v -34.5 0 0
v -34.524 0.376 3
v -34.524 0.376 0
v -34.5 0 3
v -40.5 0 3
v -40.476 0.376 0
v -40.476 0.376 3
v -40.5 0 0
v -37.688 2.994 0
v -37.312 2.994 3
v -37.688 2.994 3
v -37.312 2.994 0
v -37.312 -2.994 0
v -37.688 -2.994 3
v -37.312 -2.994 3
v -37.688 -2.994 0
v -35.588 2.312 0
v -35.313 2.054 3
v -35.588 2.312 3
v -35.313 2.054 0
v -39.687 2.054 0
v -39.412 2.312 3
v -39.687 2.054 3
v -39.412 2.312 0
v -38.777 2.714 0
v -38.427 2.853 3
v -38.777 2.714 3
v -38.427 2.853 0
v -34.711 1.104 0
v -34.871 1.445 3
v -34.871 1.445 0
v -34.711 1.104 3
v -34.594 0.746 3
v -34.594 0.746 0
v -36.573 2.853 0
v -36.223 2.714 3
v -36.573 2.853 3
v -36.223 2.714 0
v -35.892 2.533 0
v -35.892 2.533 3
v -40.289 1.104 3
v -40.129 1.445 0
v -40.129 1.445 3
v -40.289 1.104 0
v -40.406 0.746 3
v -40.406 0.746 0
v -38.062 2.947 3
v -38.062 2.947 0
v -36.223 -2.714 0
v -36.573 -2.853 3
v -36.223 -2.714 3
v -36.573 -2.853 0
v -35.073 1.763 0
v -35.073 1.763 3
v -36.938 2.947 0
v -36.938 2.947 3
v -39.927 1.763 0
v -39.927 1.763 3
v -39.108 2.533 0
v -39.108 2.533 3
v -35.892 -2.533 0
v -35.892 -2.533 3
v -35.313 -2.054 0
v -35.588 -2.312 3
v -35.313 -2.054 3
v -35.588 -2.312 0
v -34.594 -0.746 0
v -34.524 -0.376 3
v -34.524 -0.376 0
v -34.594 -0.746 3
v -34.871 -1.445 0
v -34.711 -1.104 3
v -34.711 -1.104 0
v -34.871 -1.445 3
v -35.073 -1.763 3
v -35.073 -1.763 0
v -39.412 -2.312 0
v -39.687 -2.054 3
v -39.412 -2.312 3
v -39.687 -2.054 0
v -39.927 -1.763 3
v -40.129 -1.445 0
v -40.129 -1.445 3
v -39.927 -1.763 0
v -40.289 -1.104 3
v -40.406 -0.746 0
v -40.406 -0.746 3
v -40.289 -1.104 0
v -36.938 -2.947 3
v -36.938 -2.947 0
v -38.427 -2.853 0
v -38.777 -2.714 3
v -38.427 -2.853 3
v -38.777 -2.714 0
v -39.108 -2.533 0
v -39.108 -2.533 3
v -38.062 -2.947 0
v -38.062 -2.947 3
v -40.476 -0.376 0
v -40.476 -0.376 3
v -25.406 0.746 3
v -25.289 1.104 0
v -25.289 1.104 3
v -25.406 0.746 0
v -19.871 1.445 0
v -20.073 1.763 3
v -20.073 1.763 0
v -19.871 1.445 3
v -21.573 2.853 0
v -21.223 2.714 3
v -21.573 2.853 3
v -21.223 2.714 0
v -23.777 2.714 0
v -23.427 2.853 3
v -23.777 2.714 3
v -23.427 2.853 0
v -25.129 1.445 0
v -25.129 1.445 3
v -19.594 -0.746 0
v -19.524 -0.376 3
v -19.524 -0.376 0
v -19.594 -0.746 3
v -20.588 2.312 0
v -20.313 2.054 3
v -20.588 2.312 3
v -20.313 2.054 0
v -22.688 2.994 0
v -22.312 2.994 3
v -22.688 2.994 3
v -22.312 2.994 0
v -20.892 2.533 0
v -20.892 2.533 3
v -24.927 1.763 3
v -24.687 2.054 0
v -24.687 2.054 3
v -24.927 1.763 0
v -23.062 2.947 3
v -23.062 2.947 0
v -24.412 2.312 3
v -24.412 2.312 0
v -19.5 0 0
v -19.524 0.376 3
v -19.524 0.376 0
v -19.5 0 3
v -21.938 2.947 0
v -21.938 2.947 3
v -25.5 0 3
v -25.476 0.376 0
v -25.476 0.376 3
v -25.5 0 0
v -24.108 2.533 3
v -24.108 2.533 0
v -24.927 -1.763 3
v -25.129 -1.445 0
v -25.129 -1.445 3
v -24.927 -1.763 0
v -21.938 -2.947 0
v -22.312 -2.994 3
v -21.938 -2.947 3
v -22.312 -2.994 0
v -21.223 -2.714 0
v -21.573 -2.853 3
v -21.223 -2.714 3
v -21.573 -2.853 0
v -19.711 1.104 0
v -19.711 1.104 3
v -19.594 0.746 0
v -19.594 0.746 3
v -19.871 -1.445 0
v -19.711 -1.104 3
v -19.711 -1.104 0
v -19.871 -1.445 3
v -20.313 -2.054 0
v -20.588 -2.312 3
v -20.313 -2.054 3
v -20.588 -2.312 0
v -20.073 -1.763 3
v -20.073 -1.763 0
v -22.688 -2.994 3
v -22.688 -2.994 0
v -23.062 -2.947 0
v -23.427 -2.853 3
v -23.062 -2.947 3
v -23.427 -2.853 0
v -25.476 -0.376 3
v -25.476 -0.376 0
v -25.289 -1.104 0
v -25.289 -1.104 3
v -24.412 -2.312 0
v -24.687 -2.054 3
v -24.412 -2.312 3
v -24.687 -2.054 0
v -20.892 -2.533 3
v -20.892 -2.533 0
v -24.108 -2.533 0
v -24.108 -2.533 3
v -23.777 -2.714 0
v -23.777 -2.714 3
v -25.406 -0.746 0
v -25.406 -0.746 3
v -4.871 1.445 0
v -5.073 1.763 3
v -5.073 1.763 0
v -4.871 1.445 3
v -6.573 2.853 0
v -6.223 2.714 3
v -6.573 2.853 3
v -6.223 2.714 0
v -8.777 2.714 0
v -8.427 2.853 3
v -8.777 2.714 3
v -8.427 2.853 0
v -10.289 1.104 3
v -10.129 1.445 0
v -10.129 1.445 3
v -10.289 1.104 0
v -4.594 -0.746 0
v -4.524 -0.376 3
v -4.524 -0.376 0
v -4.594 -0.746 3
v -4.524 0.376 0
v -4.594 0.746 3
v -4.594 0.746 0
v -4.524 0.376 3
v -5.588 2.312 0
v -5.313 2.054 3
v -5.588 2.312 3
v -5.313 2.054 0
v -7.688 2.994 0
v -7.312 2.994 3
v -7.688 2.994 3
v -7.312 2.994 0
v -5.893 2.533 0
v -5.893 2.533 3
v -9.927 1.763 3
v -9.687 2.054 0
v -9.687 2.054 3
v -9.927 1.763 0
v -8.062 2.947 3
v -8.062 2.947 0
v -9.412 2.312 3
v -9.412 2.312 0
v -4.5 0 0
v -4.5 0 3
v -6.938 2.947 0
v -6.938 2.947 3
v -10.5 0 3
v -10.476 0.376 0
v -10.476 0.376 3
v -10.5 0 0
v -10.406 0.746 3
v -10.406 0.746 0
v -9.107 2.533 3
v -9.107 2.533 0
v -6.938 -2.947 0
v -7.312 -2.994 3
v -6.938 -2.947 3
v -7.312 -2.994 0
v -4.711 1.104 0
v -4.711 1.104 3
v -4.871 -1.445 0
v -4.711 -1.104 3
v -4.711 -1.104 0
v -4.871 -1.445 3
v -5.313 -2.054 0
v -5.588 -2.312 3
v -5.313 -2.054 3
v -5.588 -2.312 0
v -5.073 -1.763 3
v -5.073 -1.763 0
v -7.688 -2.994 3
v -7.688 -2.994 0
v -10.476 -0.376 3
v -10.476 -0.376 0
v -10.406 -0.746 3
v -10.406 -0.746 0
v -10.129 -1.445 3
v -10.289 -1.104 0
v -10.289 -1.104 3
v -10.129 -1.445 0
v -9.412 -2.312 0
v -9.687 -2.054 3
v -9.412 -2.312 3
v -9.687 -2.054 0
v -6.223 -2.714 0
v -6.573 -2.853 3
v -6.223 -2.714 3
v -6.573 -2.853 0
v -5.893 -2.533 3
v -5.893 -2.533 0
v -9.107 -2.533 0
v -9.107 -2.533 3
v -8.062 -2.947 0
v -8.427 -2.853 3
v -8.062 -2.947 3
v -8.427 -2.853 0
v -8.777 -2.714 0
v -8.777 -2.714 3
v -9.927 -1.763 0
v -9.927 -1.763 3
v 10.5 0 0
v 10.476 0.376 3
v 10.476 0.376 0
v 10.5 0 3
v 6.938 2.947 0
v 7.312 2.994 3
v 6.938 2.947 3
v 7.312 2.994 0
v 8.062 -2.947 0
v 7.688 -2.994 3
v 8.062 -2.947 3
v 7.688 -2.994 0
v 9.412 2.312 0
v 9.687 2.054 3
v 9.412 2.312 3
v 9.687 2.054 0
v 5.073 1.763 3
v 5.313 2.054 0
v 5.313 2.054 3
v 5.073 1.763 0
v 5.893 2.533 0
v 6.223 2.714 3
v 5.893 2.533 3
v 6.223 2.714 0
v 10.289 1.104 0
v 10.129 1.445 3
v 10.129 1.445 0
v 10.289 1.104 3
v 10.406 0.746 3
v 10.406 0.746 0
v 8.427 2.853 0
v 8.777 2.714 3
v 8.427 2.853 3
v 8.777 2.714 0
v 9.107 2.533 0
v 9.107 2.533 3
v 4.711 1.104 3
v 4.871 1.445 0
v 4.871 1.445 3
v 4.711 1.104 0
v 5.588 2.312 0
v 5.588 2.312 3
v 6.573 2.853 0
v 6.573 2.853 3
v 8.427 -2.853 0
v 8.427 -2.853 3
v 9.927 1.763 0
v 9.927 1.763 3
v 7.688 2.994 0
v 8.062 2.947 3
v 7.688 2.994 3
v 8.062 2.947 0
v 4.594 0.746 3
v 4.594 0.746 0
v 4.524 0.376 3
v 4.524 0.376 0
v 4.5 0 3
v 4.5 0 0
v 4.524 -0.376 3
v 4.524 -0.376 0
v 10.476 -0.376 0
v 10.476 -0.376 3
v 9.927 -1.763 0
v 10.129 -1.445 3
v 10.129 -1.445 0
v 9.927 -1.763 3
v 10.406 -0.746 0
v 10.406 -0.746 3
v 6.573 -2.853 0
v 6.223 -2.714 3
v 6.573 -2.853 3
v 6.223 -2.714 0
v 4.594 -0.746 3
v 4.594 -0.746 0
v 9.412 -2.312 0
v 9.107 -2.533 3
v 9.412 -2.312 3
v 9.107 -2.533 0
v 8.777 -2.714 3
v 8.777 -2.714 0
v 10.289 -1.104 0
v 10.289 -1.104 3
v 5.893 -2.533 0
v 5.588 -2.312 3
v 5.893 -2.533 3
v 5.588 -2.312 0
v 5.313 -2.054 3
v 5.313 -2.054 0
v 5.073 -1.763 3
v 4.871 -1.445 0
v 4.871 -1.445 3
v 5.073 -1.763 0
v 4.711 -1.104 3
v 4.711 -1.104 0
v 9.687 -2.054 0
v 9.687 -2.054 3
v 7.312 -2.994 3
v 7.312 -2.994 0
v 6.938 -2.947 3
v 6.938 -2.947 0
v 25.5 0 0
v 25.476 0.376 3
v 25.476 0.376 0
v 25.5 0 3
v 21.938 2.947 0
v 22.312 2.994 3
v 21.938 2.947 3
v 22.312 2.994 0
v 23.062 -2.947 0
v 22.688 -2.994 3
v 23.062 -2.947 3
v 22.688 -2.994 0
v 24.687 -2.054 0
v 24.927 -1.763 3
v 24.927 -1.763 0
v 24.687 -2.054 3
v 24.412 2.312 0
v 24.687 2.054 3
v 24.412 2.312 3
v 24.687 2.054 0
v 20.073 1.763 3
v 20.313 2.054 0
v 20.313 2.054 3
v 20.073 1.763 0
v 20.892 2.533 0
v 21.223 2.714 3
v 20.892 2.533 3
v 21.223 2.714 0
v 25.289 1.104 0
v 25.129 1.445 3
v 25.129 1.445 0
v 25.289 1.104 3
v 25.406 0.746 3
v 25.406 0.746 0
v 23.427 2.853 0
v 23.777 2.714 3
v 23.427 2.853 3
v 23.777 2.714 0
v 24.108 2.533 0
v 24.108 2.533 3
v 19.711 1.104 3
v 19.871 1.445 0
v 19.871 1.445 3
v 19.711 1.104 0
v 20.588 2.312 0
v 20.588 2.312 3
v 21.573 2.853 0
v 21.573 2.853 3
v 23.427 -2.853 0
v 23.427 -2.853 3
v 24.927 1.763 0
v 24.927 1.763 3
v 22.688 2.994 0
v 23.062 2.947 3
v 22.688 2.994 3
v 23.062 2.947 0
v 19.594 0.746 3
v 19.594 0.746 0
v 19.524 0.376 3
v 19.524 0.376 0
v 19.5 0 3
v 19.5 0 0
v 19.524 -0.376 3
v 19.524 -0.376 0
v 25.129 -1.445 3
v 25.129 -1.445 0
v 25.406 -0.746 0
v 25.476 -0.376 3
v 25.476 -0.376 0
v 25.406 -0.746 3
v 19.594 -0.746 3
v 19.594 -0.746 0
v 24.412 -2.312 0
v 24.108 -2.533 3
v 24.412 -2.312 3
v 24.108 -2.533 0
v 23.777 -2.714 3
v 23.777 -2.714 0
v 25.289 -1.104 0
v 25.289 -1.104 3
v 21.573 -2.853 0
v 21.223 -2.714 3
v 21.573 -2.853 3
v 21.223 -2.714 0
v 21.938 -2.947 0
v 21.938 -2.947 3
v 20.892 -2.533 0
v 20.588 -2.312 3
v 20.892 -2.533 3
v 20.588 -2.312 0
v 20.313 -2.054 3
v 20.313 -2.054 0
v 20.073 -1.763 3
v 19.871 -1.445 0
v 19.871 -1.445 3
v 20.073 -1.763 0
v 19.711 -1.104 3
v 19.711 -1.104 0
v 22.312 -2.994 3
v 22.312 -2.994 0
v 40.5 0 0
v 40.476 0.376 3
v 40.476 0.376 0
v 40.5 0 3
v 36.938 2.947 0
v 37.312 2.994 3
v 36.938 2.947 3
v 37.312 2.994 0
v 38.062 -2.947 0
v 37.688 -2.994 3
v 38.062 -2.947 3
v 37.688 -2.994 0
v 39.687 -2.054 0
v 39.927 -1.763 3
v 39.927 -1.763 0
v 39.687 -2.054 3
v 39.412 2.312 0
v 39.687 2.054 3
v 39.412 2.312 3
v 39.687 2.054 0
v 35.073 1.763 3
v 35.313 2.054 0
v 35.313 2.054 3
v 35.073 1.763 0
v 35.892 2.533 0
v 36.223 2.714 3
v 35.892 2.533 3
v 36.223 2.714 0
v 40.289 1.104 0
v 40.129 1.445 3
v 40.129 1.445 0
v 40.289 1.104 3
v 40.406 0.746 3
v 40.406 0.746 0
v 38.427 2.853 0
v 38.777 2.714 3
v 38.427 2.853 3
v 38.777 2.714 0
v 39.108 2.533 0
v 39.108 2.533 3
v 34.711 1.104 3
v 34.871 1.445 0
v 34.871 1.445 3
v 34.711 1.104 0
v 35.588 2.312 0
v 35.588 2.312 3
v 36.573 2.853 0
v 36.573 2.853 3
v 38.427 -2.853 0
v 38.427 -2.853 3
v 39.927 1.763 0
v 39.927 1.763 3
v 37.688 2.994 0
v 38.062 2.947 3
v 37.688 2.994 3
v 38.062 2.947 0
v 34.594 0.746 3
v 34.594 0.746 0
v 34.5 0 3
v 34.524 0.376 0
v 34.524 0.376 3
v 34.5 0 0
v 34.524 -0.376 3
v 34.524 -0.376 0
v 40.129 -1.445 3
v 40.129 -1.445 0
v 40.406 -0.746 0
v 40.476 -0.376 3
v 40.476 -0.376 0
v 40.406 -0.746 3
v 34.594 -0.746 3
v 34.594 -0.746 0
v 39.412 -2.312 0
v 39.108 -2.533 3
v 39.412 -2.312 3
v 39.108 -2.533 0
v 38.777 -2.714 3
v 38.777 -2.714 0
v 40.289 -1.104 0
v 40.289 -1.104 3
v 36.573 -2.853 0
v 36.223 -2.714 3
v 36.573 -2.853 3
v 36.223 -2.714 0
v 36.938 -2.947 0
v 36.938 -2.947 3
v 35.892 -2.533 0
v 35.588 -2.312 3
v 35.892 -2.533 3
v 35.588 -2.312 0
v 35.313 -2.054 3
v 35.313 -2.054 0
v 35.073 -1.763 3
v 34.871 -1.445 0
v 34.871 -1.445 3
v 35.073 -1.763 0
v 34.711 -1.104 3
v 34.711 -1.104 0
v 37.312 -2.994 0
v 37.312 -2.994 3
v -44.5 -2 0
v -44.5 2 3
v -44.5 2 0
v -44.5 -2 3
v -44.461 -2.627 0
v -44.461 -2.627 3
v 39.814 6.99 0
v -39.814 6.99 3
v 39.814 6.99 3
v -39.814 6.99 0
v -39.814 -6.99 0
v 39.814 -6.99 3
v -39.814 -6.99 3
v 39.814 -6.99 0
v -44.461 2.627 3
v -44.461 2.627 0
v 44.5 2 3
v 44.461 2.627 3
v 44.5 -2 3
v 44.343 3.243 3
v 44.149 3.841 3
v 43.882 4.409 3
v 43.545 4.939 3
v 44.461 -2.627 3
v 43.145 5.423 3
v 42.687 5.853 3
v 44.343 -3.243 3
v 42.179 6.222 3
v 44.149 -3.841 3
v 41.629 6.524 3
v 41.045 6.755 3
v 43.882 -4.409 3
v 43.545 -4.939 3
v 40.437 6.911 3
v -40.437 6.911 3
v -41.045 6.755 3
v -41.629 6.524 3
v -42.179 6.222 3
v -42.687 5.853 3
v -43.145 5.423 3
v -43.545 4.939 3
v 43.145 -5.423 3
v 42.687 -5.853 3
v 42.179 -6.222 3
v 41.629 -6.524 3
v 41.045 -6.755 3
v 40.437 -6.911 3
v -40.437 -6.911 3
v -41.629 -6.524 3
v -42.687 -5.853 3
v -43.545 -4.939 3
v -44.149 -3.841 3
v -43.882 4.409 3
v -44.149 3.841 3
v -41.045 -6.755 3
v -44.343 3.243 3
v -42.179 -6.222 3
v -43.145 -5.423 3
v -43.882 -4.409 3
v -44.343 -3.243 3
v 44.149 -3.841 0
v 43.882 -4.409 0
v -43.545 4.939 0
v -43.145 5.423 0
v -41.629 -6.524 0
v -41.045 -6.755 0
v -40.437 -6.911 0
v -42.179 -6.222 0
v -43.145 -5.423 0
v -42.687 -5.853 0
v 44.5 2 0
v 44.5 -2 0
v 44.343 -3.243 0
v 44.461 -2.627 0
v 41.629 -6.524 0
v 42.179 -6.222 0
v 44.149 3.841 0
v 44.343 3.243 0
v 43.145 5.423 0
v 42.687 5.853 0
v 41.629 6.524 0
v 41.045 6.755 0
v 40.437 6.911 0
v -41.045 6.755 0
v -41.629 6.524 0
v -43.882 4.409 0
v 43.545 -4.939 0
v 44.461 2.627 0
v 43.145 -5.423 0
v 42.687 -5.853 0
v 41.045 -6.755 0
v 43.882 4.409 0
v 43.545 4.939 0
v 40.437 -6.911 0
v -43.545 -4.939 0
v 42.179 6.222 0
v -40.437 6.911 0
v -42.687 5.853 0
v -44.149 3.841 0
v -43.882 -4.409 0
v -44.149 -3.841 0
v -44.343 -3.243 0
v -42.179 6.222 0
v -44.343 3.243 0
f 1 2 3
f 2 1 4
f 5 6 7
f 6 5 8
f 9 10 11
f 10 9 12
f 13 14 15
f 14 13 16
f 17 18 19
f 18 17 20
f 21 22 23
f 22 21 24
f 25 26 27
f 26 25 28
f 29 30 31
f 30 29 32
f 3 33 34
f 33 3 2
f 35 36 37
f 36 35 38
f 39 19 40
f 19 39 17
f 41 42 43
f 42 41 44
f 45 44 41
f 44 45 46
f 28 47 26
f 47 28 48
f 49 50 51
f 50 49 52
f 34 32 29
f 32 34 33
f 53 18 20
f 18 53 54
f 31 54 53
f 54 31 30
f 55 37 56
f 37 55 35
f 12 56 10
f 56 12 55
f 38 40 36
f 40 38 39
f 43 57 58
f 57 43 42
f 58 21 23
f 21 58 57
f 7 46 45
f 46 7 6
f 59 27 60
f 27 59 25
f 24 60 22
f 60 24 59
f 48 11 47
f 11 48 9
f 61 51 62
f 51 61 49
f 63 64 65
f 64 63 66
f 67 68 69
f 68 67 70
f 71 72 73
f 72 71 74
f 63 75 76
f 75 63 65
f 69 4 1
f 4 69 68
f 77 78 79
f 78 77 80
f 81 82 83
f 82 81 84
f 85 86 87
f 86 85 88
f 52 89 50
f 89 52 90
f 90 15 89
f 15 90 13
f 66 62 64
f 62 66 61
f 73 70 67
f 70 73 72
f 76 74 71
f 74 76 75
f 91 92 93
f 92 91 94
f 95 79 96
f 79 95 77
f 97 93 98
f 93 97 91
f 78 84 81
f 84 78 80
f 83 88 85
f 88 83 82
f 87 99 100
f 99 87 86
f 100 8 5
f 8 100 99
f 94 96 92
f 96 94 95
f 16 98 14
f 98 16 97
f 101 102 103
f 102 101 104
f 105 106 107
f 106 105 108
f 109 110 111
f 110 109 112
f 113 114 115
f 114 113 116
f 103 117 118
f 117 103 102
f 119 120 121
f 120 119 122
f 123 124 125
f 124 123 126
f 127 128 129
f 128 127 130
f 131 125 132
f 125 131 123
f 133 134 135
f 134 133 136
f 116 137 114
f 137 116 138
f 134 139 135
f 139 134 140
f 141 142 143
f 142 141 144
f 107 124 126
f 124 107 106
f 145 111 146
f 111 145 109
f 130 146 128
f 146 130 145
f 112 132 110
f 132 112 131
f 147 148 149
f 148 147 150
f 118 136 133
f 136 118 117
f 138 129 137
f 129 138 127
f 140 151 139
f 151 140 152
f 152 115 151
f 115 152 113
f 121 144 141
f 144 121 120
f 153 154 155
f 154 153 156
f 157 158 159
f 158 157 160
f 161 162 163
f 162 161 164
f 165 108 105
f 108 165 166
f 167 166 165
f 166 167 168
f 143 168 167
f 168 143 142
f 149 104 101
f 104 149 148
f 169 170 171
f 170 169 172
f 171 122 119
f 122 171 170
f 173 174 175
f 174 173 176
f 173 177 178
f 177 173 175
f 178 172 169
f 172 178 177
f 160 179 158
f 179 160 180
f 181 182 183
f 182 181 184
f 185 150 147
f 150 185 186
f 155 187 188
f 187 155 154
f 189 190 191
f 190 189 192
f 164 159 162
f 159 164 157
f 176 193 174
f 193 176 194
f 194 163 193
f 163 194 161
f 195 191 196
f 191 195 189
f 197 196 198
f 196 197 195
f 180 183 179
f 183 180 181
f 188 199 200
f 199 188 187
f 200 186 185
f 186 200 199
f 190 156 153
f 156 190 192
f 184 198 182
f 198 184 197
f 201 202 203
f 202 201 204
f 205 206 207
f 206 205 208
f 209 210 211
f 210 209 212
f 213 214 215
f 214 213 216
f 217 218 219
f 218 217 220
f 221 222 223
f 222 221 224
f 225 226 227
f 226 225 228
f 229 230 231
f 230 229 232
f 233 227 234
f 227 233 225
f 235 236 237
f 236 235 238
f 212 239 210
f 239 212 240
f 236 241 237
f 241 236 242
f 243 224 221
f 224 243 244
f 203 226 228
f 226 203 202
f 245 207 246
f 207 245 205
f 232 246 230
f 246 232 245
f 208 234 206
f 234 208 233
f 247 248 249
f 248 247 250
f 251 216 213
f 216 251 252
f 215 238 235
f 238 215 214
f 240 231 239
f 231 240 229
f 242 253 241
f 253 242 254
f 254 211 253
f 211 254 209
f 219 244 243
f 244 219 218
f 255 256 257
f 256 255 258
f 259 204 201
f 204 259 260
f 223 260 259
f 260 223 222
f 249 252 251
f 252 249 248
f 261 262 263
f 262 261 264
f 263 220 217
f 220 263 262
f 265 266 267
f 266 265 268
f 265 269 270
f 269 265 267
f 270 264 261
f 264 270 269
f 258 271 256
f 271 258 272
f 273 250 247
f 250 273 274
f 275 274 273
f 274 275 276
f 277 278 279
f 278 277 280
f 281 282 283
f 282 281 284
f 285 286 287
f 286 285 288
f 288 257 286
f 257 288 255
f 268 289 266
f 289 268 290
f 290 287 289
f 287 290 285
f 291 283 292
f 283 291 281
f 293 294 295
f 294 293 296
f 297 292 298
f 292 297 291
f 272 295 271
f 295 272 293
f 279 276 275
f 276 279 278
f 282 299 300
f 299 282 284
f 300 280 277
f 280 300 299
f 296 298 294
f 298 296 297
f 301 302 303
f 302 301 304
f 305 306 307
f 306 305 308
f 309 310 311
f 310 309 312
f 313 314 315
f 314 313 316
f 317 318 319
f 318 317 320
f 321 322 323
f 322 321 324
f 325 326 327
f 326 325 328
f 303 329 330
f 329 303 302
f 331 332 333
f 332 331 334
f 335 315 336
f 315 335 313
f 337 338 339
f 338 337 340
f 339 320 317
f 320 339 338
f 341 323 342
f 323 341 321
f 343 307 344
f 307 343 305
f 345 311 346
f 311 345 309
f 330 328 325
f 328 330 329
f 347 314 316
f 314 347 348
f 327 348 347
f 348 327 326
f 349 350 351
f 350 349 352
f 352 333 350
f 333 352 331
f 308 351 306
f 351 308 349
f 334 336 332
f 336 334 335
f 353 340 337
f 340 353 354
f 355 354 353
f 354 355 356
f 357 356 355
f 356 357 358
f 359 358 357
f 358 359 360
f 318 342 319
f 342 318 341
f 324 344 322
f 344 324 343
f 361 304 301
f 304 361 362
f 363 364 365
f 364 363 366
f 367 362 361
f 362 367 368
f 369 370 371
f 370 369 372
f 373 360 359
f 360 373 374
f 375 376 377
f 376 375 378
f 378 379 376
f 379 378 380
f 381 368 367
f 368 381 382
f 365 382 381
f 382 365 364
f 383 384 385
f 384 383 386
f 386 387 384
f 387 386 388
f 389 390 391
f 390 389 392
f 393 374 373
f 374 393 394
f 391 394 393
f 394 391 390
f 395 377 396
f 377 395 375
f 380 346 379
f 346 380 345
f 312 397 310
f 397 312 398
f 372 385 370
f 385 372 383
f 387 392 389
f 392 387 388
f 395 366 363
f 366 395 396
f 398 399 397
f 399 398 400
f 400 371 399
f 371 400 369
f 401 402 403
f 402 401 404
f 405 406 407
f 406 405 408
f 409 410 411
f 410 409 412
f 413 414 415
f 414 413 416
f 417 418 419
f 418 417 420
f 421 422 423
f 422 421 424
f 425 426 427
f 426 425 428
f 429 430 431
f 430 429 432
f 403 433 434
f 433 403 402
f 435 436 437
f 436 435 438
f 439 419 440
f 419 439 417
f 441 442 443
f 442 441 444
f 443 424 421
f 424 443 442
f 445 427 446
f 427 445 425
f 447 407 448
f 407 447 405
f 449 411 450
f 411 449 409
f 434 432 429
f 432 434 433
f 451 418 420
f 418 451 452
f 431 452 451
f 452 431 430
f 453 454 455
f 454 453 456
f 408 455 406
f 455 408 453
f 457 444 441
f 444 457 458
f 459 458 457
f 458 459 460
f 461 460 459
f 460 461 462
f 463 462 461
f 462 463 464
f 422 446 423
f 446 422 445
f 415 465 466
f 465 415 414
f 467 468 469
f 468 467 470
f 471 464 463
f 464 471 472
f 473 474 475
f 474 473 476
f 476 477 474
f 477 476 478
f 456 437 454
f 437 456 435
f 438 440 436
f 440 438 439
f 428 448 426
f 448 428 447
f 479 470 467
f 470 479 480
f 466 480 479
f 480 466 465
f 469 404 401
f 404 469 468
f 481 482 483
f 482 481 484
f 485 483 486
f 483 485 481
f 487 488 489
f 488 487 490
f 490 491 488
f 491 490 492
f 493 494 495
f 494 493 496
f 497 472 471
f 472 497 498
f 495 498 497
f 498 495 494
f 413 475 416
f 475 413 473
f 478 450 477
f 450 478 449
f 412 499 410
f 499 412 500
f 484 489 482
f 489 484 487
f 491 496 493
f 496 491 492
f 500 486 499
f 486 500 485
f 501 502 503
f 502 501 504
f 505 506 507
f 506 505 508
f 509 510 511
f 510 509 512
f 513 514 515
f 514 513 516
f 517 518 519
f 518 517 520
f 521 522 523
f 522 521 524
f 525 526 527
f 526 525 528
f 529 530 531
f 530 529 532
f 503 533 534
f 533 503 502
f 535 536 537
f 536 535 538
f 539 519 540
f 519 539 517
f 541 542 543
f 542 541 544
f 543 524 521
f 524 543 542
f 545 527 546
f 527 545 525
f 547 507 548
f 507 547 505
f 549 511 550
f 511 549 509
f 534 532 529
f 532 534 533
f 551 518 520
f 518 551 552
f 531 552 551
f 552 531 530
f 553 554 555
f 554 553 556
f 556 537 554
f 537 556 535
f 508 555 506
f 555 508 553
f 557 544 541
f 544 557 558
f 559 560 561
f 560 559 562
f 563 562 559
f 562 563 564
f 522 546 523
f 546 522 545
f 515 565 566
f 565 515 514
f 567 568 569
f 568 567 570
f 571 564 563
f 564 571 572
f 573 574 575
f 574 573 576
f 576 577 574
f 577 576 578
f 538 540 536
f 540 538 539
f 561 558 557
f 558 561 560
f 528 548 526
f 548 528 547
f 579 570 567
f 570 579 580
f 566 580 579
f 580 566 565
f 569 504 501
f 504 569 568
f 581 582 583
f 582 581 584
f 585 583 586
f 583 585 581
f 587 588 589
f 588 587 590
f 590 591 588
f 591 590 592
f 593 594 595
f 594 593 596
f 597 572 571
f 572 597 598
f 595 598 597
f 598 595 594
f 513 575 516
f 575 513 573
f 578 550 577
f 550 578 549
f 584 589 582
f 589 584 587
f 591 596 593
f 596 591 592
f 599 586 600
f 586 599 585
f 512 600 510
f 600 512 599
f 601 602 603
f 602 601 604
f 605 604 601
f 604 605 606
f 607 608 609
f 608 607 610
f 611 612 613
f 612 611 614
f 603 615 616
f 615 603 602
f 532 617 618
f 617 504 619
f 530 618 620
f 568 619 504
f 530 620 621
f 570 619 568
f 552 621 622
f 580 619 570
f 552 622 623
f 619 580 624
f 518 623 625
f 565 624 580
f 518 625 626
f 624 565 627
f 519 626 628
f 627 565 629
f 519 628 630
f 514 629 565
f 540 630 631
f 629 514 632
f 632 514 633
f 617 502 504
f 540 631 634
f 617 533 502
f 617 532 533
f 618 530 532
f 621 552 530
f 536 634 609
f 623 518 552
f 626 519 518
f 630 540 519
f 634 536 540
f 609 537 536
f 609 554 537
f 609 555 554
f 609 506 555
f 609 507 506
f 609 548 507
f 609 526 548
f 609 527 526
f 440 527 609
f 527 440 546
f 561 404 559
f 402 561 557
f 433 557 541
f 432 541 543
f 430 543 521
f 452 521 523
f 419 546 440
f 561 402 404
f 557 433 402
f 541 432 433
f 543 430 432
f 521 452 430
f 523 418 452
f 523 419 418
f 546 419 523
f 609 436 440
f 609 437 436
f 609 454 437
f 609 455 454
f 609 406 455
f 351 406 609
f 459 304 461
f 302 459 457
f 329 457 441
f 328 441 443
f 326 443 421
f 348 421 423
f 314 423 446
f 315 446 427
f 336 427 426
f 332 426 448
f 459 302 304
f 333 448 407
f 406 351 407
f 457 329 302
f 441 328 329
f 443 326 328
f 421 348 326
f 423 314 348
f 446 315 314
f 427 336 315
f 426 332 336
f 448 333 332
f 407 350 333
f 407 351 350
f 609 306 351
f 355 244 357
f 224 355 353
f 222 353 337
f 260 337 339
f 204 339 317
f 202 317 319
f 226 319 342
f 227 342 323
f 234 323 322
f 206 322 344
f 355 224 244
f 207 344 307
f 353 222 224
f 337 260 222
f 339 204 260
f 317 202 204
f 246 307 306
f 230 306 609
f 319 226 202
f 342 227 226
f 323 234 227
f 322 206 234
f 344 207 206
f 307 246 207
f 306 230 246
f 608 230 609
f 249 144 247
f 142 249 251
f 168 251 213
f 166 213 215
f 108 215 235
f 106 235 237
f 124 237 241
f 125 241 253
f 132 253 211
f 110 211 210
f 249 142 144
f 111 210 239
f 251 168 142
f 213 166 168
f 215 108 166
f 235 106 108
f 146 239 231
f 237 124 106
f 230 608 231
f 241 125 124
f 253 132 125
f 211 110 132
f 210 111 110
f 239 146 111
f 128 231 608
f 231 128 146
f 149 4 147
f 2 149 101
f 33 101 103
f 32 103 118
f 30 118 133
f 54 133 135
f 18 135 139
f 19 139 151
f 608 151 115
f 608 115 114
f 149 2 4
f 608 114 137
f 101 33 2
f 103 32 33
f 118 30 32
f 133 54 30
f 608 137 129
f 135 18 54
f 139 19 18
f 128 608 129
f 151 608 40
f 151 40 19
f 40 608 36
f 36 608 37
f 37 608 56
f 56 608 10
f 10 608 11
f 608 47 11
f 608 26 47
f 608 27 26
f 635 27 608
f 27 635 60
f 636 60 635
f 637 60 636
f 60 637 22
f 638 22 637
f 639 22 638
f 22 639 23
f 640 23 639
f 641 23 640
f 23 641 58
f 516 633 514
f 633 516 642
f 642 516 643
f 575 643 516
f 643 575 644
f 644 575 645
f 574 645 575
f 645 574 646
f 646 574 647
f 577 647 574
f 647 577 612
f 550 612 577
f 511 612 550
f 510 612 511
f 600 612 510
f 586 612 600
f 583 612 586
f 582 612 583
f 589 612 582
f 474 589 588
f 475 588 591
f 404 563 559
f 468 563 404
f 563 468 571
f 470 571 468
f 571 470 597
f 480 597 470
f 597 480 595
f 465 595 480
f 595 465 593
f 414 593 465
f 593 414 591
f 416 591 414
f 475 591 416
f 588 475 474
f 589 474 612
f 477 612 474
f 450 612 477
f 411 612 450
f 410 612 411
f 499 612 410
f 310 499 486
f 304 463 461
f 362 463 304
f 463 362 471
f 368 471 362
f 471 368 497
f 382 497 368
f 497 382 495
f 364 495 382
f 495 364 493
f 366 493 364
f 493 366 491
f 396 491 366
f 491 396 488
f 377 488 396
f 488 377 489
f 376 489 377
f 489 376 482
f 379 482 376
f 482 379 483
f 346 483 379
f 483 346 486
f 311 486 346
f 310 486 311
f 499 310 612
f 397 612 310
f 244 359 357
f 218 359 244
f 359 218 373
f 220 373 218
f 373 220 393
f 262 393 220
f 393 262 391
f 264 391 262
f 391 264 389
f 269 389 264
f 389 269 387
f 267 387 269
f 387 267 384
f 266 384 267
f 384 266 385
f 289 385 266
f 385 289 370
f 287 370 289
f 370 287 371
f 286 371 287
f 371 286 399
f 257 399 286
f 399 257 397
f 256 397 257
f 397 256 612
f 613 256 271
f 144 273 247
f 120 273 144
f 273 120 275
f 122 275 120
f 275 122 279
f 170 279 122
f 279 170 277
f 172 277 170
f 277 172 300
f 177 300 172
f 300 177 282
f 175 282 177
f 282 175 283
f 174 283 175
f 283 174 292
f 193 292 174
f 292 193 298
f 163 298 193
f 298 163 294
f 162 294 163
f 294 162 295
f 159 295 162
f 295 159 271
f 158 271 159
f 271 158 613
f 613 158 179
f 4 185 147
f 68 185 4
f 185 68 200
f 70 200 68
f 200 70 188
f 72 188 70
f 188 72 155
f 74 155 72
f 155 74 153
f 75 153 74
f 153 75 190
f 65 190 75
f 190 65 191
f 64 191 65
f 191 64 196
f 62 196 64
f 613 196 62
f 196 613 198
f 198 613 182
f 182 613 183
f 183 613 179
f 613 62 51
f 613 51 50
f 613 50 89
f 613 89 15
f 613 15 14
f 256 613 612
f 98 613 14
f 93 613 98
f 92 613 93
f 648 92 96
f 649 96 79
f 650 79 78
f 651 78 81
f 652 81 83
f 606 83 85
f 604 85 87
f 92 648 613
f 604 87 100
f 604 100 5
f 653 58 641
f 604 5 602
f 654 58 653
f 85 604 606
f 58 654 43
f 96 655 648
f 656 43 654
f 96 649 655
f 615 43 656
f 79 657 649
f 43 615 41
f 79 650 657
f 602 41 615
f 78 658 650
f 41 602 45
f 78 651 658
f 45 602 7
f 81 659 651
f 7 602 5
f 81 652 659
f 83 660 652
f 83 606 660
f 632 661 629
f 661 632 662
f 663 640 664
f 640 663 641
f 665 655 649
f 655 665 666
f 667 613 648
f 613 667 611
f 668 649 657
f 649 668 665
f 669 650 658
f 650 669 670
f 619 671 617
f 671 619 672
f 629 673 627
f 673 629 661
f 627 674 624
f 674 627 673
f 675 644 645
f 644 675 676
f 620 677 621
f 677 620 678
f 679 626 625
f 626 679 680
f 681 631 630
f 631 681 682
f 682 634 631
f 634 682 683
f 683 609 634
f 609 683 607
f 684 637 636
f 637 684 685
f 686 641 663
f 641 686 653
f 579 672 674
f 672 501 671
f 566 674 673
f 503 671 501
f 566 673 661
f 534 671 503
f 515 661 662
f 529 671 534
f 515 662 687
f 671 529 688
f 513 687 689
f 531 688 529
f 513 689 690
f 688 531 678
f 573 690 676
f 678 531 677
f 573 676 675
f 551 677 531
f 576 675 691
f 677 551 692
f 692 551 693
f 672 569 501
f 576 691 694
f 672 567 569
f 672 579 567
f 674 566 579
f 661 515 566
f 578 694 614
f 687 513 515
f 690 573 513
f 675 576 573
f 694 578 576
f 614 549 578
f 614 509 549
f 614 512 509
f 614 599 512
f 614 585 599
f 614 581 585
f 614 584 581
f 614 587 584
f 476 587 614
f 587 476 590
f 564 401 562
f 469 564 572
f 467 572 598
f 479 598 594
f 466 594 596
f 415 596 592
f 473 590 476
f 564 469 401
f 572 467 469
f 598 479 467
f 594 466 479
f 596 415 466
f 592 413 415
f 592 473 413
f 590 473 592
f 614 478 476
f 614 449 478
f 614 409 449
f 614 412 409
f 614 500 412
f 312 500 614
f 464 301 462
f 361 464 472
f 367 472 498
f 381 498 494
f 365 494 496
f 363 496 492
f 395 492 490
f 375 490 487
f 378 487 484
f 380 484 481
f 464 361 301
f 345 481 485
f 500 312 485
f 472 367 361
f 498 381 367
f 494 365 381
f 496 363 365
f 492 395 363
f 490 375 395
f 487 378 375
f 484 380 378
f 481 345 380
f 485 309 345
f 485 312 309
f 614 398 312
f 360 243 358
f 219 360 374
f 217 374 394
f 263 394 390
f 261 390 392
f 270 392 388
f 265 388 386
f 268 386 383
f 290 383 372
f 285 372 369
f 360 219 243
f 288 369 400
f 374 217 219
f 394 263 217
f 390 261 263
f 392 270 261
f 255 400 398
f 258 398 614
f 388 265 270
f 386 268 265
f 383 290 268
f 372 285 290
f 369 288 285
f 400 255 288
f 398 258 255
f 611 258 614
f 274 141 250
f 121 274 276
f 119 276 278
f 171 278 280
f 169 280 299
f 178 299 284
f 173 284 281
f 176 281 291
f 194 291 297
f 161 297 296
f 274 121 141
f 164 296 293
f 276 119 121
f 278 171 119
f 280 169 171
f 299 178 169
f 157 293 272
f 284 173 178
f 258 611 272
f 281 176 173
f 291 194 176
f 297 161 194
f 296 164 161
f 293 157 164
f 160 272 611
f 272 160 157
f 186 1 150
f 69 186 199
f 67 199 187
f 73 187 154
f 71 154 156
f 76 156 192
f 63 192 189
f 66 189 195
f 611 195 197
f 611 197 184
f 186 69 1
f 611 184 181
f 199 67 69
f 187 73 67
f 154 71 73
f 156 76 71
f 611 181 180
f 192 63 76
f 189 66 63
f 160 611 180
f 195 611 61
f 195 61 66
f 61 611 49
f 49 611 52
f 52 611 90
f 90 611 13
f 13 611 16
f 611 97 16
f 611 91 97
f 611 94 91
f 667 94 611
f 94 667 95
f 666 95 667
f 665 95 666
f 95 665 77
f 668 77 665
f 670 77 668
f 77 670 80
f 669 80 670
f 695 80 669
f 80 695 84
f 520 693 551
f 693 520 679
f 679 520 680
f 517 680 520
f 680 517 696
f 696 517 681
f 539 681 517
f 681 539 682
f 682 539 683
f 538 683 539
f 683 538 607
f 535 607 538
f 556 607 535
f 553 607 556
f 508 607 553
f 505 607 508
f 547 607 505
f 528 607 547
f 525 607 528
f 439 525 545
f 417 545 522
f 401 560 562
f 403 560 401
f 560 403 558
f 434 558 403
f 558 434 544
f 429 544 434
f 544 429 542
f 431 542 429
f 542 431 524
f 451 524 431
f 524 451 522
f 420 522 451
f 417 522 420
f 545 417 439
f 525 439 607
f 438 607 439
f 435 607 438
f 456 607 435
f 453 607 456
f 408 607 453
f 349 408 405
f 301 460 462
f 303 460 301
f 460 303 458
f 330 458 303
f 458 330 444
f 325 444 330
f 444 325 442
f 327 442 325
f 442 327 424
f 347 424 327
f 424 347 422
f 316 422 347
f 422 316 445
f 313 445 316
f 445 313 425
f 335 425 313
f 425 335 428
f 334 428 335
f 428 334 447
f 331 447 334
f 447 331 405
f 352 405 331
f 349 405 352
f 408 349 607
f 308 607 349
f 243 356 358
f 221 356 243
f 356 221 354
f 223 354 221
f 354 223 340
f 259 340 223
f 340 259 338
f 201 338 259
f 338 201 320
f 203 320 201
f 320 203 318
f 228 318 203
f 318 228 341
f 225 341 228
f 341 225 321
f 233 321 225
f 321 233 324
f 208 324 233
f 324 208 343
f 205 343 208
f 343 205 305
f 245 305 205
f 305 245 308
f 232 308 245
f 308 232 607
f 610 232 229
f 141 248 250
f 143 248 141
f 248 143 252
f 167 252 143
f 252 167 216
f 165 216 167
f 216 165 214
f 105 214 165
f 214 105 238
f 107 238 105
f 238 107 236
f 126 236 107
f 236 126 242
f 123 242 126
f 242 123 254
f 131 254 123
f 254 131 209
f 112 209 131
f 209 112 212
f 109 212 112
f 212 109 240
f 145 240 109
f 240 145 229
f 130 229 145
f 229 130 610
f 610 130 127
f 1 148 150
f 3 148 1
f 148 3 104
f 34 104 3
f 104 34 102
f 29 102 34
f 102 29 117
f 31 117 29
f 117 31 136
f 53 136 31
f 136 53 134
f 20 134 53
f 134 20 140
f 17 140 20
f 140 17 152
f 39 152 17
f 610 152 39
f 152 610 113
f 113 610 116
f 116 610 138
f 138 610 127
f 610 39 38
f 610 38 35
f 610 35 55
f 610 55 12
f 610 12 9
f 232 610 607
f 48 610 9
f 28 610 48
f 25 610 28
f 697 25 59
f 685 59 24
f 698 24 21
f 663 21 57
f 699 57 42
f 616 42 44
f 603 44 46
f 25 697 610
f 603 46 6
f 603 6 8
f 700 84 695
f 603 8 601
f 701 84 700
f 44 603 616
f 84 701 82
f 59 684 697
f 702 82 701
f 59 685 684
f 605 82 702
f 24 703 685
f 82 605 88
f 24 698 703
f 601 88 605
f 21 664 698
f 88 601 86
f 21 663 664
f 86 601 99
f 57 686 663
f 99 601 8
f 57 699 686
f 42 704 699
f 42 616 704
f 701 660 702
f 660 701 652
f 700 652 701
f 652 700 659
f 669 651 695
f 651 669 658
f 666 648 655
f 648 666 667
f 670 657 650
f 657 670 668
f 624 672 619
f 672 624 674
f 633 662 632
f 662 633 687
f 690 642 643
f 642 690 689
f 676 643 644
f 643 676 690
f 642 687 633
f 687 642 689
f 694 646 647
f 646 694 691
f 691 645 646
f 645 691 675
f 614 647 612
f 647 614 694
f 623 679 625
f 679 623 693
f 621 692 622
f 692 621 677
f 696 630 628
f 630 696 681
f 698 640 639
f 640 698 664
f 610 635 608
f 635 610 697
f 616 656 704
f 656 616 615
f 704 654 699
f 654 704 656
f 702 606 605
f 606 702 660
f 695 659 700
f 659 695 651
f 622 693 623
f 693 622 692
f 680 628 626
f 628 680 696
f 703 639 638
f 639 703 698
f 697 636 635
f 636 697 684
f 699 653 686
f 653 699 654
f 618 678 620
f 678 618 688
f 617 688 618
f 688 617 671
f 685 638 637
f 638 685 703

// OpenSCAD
// Generated by SolidPython 1.1.3 on 2023-03-12 22:16:22
$fn = 50;


difference() {
	union() {
		translate(v = [0, 0, 0]) {
			rotate(a = [0, 0, 0]) {
				hull() {
					translate(v = [-39.5000000000, 2.0000000000, 0]) {
						rotate(a = [0, 0, 0]) {
							translate(v = [0, 0, 0]) {
								rotate(a = [0, 0, 0]) {
									cylinder(h = 3, r = 5);
								}
							}
						}
					}
					translate(v = [39.5000000000, 2.0000000000, 0]) {
						rotate(a = [0, 0, 0]) {
							translate(v = [0, 0, 0]) {
								rotate(a = [0, 0, 0]) {
									cylinder(h = 3, r = 5);
								}
							}
						}
					}
					translate(v = [-39.5000000000, -2.0000000000, 0]) {
						rotate(a = [0, 0, 0]) {
							translate(v = [0, 0, 0]) {
								rotate(a = [0, 0, 0]) {
									cylinder(h = 3, r = 5);
								}
							}
						}
					}
					translate(v = [39.5000000000, -2.0000000000, 0]) {
						rotate(a = [0, 0, 0]) {
							translate(v = [0, 0, 0]) {
								rotate(a = [0, 0, 0]) {
									cylinder(h = 3, r = 5);
								}
							}
						}
					}
				}
			}
		}
	}
	union() {
		translate(v = [-37.5000000000, 0.0000000000, 0]) {
			rotate(a = [0, 0, 0]) {
				translate(v = [0, 0, -50]) {
					rotate(a = [0, 0, 0]) {
						cylinder(h = 100, r = 3.0000000000);
					}
				}
			}
		}
		translate(v = [-22.5000000000, 0.0000000000, 0]) {
			rotate(a = [0, 0, 0]) {
				translate(v = [0, 0, -50]) {
					rotate(a = [0, 0, 0]) {
						cylinder(h = 100, r = 3.0000000000);
					}
				}
			}
		}
		translate(v = [-7.5000000000, 0.0000000000, 0]) {
			rotate(a = [0, 0, 0]) {
				translate(v = [0, 0, -50]) {
					rotate(a = [0, 0, 0]) {
						cylinder(h = 100, r = 3.0000000000);
					}
				}
			}
		}
		translate(v = [7.5000000000, 0.0000000000, 0]) {
			rotate(a = [0, 0, 0]) {
				translate(v = [0, 0, -50]) {
					rotate(a = [0, 0, 0]) {
						cylinder(h = 100, r = 3.0000000000);
					}
				}
			}
		}
		translate(v = [22.5000000000, 0.0000000000, 0]) {
			rotate(a = [0, 0, 0]) {
				translate(v = [0, 0, -50]) {
					rotate(a = [0, 0, 0]) {
						cylinder(h = 100, r = 3.0000000000);
					}
				}
			}
		}
		translate(v = [37.5000000000, 0.0000000000, 0]) {
			rotate(a = [0, 0, 0]) {
				translate(v = [0, 0, -50]) {
					rotate(a = [0, 0, 0]) {
						cylinder(h = 100, r = 3.0000000000);
					}
				}
			}
		}
	}
}
/***********************************************
*********      SolidPython code:      **********
************************************************
 
from solid import *
import os
import subprocess

import oomB

import opsc_library_gen

mode = "laser"
#mode = "3d_print"

defined_objects = {}

radius_dict = {}
countersunk_dict = {}


def set_mode(m):
    global mode
    mode = m
    radius_dict['M6'] = 6.5/2
    radius_dict['M3'] = 3.3/2
    if mode == "laser":
        radius_dict['M6'] = 6/2
        radius_dict['M3'] = 3/2

    countersunk_dict['M3'] = {}
    countersunk_dict['M3']['little_rad'] = radius_dict['M3']
    countersunk_dict['M3']['big_rad'] = (5.5+0.6)/2
    if mode == "laser":
        countersunk_dict['M3']['big_rad'] = (4.75+0.6)/2
        countersunk_dict['M3']['little_rad'] = (4.75+0.6)/2

    countersunk_dict['M3']['height'] = 1.7


def opsc_make_object(filename, objects, save_type="none",resolution=50, layers = 1, tilediff = 200, mode="laser", overwrite=True):
    if overwrite or not os.path.exists(filename):
        set_mode(mode)
        save_type = save_type.lower()
        os.makedirs(os.path.dirname(filename), exist_ok=True)
        final_object = opsc_get_object(objects, mode = mode)
        # Save the final object to the specified filename    
        scad_render_to_file(final_object, filename, file_header='$fn = %s;' % resolution, include_orig_code=True)
        if mode == "laser":
            filename_laser = filename.replace(".scad","-flat.scad")
            scad_render_to_file(getLaser(final_object, layers=layers, tilediff=tilediff), filename_laser, file_header='$fn = %s;' % resolution, include_orig_code=True)
            if save_type == "all":
                saveToAll(filename_laser)
            elif save_type == "dxf":
                saveToDxf(filename_laser)
        if save_type == "all":
            saveToAll(filename)
        elif save_type == "dxf":
            saveToDxf(filename)


def opsc_get_object(objects, mode = "laser"):
    # Create the solidpython objects only include the positive objects and if they don't have inclusion or their inclusion is either all or mode
    # Initialize an empty list to store the results
    positive_objects = []

    # Iterate over the "objects" list
    for obj in objects:
        # Check if the current object has a "type" key with a value of "positive"
        if obj['type'] == 'positive':
            # Check if the current object has an "inclusion" key and its value matches "mode",
            # or if the current object does not have an "inclusion" key at all
            if not 'inclusion' in obj or obj['inclusion'] == "all" or obj['inclusion'] == mode:
                # Call the "get_opsc_item" function with the current object as an argument
                opsc_item = get_opsc_item(obj)
                # Add the result to the "positive_objects" list
                positive_objects.append(opsc_item)
# Initialize an empty list to store the results
    negative_objects = []

    # Iterate over the "objects" list
    for obj in objects:
        # Check if the current object has a "type" key with a value of "negative"
        if obj['type'] == 'negative':
            # Check if the current object has an "inclusion" key and its value matches "mode",
            # or if the current object does not have an "inclusion" key at all
            if not 'inclusion' in obj or obj['inclusion'] == "all" or obj['inclusion'] == mode:
                # Call the "get_opsc_item" function with the current object as an argument
                opsc_item = get_opsc_item(obj)
                # Add the result to the "negative_objects" list
                negative_objects.append(opsc_item)
    
    #positive_objects = [get_opsc_item(obj) for obj in objects if obj['type'] == 'positive']
    #negative_objects = [get_opsc_item(obj) for obj in objects if obj['type'] == 'negative']
    # Union the positive objects
    positive_object = union()(*positive_objects)
    # Union the negative objects
    negative_object = union()(*negative_objects)
    # Create the final object by subtracting the negative objects from the positive objects
    return difference()(positive_object, negative_object)

def get_opsc_item(params):
    # A dictionary to map radius string values to numerical values
    #radius_dict = {'small': 5, 'medium': 10, 'large': 15}
    # An array of function names for basic shapes
    basic_shapes = ['cube', 'sphere', 'cylinder']
    
    # An array of function names for other shapes
    other_shapes = ['hole', 'slot', 'rounded_rectangle', 'countersunk']
    


    # Convert radius to r if present, and remove radius from the params dictionary
    if 'radius' in params:
        if isinstance(params['radius'], str):
            # Use the radius_dict to map the radius string value to a numerical value
            params['r'] = radius_dict[params['radius']]
        else:
            params['r'] = params['radius']
        del params['radius']
    

    # Check if the object type is a basic shape
    if params['shape'] in basic_shapes:
        # Remove shape and unexpected dictionary values
        allowed_keys = {'size', 'r', 'r1', 'r2', 'd', 'h', 'rw', 'rh', 'dw', 'dh'}
        shape_params = {k: v for k, v in params.items() if k in allowed_keys}

        # Call the corresponding function for the shape parameter, using ** notation to pass the shape_params dictionary as keyword arguments
        return get_opsc_transform(params,globals()[params['shape']](**shape_params))
    
    # If the object type is not a basic shape, check if it's a defined object or one of the other shapes
    elif params['shape'] in other_shapes:
        # Call the corresponding function for the shape parameter, passing the params dictionary as an argument
        p2 = copy.deepcopy(params)
        p2["pos"] = [0,0,0]
        return get_opsc_transform(params,globals()[params['shape']](p2))
    
    # If the object is not a basic shape or a defined object, try to import it from a .scad file
    else:
        obj = defined_objects[params['shape']]
        return get_opsc_transform(params,obj)

def get_opsc_transform(params, solid_obj):
    # Rotate the object based on the 'rot' field in the params dictionary, or the 'rotX', 'rotY', and 'rotZ' fields if 'rot' is not present
    rot = params.get('rot', [])
    if rot:
        rotX, rotY, rotZ = rot
    else:
        rotX = params.get('rotX', 0)
        rotY = params.get('rotY', 0)
        rotZ = params.get('rotZ', 0)
    solid_obj = rotate([rotX, rotY, rotZ])(solid_obj)

    # Translate the object based on the 'pos' field in the params dictionary, or the 'x', 'y', and 'z' fields if 'pos' is not present
    pos = params.get('pos', [])
    if pos:
        x, y, z = pos
    else:
        x = params.get('x', 0)
        y = params.get('y', 0)
        z = params.get('z', 0)
    solid_obj = translate([x, y, z])(solid_obj)
    return solid_obj


import random

def opsc_easy_array(type, shape, repeats, pos_start, shift_arr, **kwargs):
    for i in range(0,3):
        repeats.append(1)
        pos_start.append(0)
        shift_arr.append(0)
    return_objects = []

    for x in range(0,repeats[0]):
        for y in range(0,repeats[1]):
            for z in range(0,repeats[2]):
                return_objects.append(opsc_easy(type, shape, pos=[pos_start[0]+x*shift_arr[0],pos_start[1]+y*shift_arr[1],pos_start[2]+z*shift_arr[2]], **kwargs))
    return return_objects                



def opsc_easy(type, shape, **kwargs):
    obj = {
        'type': type,
        'shape': shape
    }
    for param in ['size', 'r', 'r1', 'r2', 'd', 'h', 'rw', 'rh', 'dw', 'dh', 'pos', 'x', 'y', 'z', 'rot', 'rotX', 'rotY', 'rotZ', "w", "inclusion"]:
        if param in kwargs:
            obj[param] = kwargs[param]
    return obj

def hole(params):
    p2 = copy.deepcopy(params)  
    # Check if the radius is a string and replace it with the corresponding value from the dictionary
    if isinstance(p2['r'], str):
        p2['r'] = radius_dict[p2['r']]
    
    # Set the height to 100 if not specified
    if 'h' not in p2:
        p2['h'] = 100
        p2["pos"] = [0,0,-50]
    p2["center"] = True
    # Create the cylinder object
    p2["shape"] = "cylinder"
    p2["type"] = "positive"

    return get_opsc_item(p2)

import copy

def countersunk(params):
    p2 = copy.deepcopy(params)
    counter_rad = p2['r']
    p2['r'] = radius_dict[p2['r']]
    hp = copy.deepcopy(p2)
    hp["type"] = "positive"
    hp["shape"] = "hole"
    del hp["rot"]
    hol = get_opsc_item(hp)
    
    cp = copy.deepcopy(p2)
    cp["h"] = countersunk_dict[counter_rad]["height"]
    cp["r2"] = countersunk_dict[counter_rad]["little_rad"]
    cp["r1"] = countersunk_dict[counter_rad]["big_rad"]
    del cp["r"]
    del cp["rot"]
    cp["type"] = "positive"
    cp["shape"] = "cylinder"
    cp["pos"] = [0,0,0]

    top = get_opsc_item(cp)
    return union()(hol,top)



def slot(params):  
    p2 = copy.deepcopy(params) 
    if isinstance(p2['r'], str):
        p2['r'] = radius_dict[p2['r']]
    p2["type"] = "positive"
    p2["shape"] = "hole"
    del p2["rot"]
    p2["pos"] = [0,0,0]
    left = copy.deepcopy(p2)
    right = copy.deepcopy(p2)
    left["pos"][0] = p2["w"] / 2 - p2["r"] 
    
    right["pos"][0] = -p2["w"] / 2 + p2["r"] 
    pass
    leftObj = get_opsc_item(left)
    rightObj = get_opsc_item(right)
    return hull()(leftObj, rightObj)

def rounded_rectangle(params):   
    p2 = copy.deepcopy(params) 
    p2["h"] = p2["size"][2]
    p2["pos"] = p2.get("pos", [0, 0, 0]) 
    p2["type"] = "positive"
    p2["shape"] = "hole"
    p2["pos"] = [0,0,0]
    
    if 'rot' in p2:
        del p2["rot"]   
    if 'r' not in p2:
        p2["r"] = 5 
    tl = copy.deepcopy(p2)
    tr = copy.deepcopy(p2)
    bl = copy.deepcopy(p2)
    br = copy.deepcopy(p2)
    tl["pos"][0] = -(p2["size"][0] - p2["r"]*2)/2
    tl["pos"][1] = (p2["size"][1] - p2["r"]*2)/2
    tr["pos"][0] = (p2["size"][0] - p2["r"]*2)/2
    tr["pos"][1] = (p2["size"][1] - p2["r"]*2)/2
    bl["pos"][0] = -(p2["size"][0] - p2["r"]*2)/2
    bl["pos"][1] = -(p2["size"][1] - p2["r"]*2)/2
    br["pos"][0] = (p2["size"][0] - p2["r"]*2)/2
    br["pos"][1] = -(p2["size"][1] - p2["r"]*2)/2
    del tl["size"]
    del tr["size"]
    del bl["size"]
    del br["size"]
    tlo = get_opsc_item(tl)
    tro = get_opsc_item(tr)
    blo = get_opsc_item(bl)
    bro = get_opsc_item(br)    
    return hull()(tlo, tro, blo, bro)



def import_scad_object(filename):
    # Import the .scad file and convert it to a solidpython object
    #filename = "parts"
    obj = import_scad(filename)
    return obj.main()
    


import os
import solid as solidpython

# A dictionary to store the defined objects


def load_scad_objects():
    opsc_library_gen.gen_library(defined_objects)

import random

def test(num_objects):
    objects = []
    for i in range(num_objects):
        # Choose a random shape
        #shape = random.choice(['cube', 'sphere', 'cylinder', 'hole', 'slot', "rounded_rectangle"])
        shape = random.choice(["rounded_rectangle"])

        # Choose a random type
        type = random.choice(['positive', 'negative'])
        
        # Create an empty object dictionary
        obj = {'shape': shape, 'type': type}
        
        # Set shape-specific parameters
        if obj['shape'] in ['cube']:
            obj['size'] =  [random.uniform(5, 15), random.uniform(5, 15), random.uniform(5, 15)]
        if obj['shape'] in ['rounded_rectangle']:
            obj['size'] =  [random.uniform(5, 15), random.uniform(5, 15), random.uniform(5, 15)]
            obj['r'] = random.uniform(0.5, 5)
        elif obj['shape'] == 'sphere':
            obj['r'] = random.uniform(5, 15)
        elif obj['shape'] in ['cylinder', 'hole']:
            obj['r'] = random.uniform(0.5, 5)
            obj['h'] = random.uniform(5, 15)
        elif obj['shape'] == 'slot':
            obj['r'] = random.uniform(0.5, 5)
            obj['h'] = random.uniform(5, 15)
            obj['w'] = random.uniform(5, 15)
        
        # Set a random position and rotation
        obj['pos'] = [random.uniform(-20, 20), random.uniform(-20, 20), random.uniform(-20, 20)]
        obj['rot'] = [random.uniform(-180, 180), random.uniform(-180, 180), random.uniform(-180, 180)]
        
        # Add the object to the list
        objects.append(obj)
    return objects

####### old file saving
def saveToAll(fileIn):
    saveToDxf(fileIn)
    saveToPng(fileIn)
    saveToStl(fileIn)
    saveToSvg(fileIn)

def saveToDxf(fileIn, fileOut="", copy_to_laser=True):
    if fileOut == "":
        fileOut = fileIn.replace(".scad",".dxf")
    saveToFile(fileIn, fileOut)


    
def saveToPng(fileIn, fileOut="",extra="--render"):
    if fileOut == "":
        fileOut = fileIn.replace(".scad",".png")
    saveToFile(fileIn, fileOut)

def saveToStl(fileIn, fileOut=""):
    if fileOut == "":
        fileOut = fileIn.replace(".scad",".stl")
    saveToFile(fileIn, fileOut)
    
def saveToSvg(fileIn, fileOut=""):
    if fileOut == "":
        fileOut = fileIn.replace(".scad",".svg")
    saveToFile(fileIn, fileOut)

def saveToFile(fileIn, fileOut,extra=""):
    #extra = extra + " --colorscheme Tomorrow"

    launchStr = 'openscad -o "' + fileOut + '"' + extra + ' "' + fileIn + '"'
    if ".png" in fileOut:
        launchStr = launchStr + " --render"
    print("            saveToFile launch string: " + launchStr)
    subprocess.run(launchStr)
    x=0

def getLaser(final_object,start=1.5,layers=1,thickness=3,tilediff=200):
        rv= []

        for x in range(layers):
            rv.append(translate([0,x*tilediff,0])(
                    projection()(
                        intersection()(translate([-500,-500,start+x*thickness])(cube(size=[1000,1000,0.1])),
                            final_object
                        )
                    )
            )
            )
            
        return union()(rv)

set_mode("laser")
load_scad_objects() 
 
************************************************/
